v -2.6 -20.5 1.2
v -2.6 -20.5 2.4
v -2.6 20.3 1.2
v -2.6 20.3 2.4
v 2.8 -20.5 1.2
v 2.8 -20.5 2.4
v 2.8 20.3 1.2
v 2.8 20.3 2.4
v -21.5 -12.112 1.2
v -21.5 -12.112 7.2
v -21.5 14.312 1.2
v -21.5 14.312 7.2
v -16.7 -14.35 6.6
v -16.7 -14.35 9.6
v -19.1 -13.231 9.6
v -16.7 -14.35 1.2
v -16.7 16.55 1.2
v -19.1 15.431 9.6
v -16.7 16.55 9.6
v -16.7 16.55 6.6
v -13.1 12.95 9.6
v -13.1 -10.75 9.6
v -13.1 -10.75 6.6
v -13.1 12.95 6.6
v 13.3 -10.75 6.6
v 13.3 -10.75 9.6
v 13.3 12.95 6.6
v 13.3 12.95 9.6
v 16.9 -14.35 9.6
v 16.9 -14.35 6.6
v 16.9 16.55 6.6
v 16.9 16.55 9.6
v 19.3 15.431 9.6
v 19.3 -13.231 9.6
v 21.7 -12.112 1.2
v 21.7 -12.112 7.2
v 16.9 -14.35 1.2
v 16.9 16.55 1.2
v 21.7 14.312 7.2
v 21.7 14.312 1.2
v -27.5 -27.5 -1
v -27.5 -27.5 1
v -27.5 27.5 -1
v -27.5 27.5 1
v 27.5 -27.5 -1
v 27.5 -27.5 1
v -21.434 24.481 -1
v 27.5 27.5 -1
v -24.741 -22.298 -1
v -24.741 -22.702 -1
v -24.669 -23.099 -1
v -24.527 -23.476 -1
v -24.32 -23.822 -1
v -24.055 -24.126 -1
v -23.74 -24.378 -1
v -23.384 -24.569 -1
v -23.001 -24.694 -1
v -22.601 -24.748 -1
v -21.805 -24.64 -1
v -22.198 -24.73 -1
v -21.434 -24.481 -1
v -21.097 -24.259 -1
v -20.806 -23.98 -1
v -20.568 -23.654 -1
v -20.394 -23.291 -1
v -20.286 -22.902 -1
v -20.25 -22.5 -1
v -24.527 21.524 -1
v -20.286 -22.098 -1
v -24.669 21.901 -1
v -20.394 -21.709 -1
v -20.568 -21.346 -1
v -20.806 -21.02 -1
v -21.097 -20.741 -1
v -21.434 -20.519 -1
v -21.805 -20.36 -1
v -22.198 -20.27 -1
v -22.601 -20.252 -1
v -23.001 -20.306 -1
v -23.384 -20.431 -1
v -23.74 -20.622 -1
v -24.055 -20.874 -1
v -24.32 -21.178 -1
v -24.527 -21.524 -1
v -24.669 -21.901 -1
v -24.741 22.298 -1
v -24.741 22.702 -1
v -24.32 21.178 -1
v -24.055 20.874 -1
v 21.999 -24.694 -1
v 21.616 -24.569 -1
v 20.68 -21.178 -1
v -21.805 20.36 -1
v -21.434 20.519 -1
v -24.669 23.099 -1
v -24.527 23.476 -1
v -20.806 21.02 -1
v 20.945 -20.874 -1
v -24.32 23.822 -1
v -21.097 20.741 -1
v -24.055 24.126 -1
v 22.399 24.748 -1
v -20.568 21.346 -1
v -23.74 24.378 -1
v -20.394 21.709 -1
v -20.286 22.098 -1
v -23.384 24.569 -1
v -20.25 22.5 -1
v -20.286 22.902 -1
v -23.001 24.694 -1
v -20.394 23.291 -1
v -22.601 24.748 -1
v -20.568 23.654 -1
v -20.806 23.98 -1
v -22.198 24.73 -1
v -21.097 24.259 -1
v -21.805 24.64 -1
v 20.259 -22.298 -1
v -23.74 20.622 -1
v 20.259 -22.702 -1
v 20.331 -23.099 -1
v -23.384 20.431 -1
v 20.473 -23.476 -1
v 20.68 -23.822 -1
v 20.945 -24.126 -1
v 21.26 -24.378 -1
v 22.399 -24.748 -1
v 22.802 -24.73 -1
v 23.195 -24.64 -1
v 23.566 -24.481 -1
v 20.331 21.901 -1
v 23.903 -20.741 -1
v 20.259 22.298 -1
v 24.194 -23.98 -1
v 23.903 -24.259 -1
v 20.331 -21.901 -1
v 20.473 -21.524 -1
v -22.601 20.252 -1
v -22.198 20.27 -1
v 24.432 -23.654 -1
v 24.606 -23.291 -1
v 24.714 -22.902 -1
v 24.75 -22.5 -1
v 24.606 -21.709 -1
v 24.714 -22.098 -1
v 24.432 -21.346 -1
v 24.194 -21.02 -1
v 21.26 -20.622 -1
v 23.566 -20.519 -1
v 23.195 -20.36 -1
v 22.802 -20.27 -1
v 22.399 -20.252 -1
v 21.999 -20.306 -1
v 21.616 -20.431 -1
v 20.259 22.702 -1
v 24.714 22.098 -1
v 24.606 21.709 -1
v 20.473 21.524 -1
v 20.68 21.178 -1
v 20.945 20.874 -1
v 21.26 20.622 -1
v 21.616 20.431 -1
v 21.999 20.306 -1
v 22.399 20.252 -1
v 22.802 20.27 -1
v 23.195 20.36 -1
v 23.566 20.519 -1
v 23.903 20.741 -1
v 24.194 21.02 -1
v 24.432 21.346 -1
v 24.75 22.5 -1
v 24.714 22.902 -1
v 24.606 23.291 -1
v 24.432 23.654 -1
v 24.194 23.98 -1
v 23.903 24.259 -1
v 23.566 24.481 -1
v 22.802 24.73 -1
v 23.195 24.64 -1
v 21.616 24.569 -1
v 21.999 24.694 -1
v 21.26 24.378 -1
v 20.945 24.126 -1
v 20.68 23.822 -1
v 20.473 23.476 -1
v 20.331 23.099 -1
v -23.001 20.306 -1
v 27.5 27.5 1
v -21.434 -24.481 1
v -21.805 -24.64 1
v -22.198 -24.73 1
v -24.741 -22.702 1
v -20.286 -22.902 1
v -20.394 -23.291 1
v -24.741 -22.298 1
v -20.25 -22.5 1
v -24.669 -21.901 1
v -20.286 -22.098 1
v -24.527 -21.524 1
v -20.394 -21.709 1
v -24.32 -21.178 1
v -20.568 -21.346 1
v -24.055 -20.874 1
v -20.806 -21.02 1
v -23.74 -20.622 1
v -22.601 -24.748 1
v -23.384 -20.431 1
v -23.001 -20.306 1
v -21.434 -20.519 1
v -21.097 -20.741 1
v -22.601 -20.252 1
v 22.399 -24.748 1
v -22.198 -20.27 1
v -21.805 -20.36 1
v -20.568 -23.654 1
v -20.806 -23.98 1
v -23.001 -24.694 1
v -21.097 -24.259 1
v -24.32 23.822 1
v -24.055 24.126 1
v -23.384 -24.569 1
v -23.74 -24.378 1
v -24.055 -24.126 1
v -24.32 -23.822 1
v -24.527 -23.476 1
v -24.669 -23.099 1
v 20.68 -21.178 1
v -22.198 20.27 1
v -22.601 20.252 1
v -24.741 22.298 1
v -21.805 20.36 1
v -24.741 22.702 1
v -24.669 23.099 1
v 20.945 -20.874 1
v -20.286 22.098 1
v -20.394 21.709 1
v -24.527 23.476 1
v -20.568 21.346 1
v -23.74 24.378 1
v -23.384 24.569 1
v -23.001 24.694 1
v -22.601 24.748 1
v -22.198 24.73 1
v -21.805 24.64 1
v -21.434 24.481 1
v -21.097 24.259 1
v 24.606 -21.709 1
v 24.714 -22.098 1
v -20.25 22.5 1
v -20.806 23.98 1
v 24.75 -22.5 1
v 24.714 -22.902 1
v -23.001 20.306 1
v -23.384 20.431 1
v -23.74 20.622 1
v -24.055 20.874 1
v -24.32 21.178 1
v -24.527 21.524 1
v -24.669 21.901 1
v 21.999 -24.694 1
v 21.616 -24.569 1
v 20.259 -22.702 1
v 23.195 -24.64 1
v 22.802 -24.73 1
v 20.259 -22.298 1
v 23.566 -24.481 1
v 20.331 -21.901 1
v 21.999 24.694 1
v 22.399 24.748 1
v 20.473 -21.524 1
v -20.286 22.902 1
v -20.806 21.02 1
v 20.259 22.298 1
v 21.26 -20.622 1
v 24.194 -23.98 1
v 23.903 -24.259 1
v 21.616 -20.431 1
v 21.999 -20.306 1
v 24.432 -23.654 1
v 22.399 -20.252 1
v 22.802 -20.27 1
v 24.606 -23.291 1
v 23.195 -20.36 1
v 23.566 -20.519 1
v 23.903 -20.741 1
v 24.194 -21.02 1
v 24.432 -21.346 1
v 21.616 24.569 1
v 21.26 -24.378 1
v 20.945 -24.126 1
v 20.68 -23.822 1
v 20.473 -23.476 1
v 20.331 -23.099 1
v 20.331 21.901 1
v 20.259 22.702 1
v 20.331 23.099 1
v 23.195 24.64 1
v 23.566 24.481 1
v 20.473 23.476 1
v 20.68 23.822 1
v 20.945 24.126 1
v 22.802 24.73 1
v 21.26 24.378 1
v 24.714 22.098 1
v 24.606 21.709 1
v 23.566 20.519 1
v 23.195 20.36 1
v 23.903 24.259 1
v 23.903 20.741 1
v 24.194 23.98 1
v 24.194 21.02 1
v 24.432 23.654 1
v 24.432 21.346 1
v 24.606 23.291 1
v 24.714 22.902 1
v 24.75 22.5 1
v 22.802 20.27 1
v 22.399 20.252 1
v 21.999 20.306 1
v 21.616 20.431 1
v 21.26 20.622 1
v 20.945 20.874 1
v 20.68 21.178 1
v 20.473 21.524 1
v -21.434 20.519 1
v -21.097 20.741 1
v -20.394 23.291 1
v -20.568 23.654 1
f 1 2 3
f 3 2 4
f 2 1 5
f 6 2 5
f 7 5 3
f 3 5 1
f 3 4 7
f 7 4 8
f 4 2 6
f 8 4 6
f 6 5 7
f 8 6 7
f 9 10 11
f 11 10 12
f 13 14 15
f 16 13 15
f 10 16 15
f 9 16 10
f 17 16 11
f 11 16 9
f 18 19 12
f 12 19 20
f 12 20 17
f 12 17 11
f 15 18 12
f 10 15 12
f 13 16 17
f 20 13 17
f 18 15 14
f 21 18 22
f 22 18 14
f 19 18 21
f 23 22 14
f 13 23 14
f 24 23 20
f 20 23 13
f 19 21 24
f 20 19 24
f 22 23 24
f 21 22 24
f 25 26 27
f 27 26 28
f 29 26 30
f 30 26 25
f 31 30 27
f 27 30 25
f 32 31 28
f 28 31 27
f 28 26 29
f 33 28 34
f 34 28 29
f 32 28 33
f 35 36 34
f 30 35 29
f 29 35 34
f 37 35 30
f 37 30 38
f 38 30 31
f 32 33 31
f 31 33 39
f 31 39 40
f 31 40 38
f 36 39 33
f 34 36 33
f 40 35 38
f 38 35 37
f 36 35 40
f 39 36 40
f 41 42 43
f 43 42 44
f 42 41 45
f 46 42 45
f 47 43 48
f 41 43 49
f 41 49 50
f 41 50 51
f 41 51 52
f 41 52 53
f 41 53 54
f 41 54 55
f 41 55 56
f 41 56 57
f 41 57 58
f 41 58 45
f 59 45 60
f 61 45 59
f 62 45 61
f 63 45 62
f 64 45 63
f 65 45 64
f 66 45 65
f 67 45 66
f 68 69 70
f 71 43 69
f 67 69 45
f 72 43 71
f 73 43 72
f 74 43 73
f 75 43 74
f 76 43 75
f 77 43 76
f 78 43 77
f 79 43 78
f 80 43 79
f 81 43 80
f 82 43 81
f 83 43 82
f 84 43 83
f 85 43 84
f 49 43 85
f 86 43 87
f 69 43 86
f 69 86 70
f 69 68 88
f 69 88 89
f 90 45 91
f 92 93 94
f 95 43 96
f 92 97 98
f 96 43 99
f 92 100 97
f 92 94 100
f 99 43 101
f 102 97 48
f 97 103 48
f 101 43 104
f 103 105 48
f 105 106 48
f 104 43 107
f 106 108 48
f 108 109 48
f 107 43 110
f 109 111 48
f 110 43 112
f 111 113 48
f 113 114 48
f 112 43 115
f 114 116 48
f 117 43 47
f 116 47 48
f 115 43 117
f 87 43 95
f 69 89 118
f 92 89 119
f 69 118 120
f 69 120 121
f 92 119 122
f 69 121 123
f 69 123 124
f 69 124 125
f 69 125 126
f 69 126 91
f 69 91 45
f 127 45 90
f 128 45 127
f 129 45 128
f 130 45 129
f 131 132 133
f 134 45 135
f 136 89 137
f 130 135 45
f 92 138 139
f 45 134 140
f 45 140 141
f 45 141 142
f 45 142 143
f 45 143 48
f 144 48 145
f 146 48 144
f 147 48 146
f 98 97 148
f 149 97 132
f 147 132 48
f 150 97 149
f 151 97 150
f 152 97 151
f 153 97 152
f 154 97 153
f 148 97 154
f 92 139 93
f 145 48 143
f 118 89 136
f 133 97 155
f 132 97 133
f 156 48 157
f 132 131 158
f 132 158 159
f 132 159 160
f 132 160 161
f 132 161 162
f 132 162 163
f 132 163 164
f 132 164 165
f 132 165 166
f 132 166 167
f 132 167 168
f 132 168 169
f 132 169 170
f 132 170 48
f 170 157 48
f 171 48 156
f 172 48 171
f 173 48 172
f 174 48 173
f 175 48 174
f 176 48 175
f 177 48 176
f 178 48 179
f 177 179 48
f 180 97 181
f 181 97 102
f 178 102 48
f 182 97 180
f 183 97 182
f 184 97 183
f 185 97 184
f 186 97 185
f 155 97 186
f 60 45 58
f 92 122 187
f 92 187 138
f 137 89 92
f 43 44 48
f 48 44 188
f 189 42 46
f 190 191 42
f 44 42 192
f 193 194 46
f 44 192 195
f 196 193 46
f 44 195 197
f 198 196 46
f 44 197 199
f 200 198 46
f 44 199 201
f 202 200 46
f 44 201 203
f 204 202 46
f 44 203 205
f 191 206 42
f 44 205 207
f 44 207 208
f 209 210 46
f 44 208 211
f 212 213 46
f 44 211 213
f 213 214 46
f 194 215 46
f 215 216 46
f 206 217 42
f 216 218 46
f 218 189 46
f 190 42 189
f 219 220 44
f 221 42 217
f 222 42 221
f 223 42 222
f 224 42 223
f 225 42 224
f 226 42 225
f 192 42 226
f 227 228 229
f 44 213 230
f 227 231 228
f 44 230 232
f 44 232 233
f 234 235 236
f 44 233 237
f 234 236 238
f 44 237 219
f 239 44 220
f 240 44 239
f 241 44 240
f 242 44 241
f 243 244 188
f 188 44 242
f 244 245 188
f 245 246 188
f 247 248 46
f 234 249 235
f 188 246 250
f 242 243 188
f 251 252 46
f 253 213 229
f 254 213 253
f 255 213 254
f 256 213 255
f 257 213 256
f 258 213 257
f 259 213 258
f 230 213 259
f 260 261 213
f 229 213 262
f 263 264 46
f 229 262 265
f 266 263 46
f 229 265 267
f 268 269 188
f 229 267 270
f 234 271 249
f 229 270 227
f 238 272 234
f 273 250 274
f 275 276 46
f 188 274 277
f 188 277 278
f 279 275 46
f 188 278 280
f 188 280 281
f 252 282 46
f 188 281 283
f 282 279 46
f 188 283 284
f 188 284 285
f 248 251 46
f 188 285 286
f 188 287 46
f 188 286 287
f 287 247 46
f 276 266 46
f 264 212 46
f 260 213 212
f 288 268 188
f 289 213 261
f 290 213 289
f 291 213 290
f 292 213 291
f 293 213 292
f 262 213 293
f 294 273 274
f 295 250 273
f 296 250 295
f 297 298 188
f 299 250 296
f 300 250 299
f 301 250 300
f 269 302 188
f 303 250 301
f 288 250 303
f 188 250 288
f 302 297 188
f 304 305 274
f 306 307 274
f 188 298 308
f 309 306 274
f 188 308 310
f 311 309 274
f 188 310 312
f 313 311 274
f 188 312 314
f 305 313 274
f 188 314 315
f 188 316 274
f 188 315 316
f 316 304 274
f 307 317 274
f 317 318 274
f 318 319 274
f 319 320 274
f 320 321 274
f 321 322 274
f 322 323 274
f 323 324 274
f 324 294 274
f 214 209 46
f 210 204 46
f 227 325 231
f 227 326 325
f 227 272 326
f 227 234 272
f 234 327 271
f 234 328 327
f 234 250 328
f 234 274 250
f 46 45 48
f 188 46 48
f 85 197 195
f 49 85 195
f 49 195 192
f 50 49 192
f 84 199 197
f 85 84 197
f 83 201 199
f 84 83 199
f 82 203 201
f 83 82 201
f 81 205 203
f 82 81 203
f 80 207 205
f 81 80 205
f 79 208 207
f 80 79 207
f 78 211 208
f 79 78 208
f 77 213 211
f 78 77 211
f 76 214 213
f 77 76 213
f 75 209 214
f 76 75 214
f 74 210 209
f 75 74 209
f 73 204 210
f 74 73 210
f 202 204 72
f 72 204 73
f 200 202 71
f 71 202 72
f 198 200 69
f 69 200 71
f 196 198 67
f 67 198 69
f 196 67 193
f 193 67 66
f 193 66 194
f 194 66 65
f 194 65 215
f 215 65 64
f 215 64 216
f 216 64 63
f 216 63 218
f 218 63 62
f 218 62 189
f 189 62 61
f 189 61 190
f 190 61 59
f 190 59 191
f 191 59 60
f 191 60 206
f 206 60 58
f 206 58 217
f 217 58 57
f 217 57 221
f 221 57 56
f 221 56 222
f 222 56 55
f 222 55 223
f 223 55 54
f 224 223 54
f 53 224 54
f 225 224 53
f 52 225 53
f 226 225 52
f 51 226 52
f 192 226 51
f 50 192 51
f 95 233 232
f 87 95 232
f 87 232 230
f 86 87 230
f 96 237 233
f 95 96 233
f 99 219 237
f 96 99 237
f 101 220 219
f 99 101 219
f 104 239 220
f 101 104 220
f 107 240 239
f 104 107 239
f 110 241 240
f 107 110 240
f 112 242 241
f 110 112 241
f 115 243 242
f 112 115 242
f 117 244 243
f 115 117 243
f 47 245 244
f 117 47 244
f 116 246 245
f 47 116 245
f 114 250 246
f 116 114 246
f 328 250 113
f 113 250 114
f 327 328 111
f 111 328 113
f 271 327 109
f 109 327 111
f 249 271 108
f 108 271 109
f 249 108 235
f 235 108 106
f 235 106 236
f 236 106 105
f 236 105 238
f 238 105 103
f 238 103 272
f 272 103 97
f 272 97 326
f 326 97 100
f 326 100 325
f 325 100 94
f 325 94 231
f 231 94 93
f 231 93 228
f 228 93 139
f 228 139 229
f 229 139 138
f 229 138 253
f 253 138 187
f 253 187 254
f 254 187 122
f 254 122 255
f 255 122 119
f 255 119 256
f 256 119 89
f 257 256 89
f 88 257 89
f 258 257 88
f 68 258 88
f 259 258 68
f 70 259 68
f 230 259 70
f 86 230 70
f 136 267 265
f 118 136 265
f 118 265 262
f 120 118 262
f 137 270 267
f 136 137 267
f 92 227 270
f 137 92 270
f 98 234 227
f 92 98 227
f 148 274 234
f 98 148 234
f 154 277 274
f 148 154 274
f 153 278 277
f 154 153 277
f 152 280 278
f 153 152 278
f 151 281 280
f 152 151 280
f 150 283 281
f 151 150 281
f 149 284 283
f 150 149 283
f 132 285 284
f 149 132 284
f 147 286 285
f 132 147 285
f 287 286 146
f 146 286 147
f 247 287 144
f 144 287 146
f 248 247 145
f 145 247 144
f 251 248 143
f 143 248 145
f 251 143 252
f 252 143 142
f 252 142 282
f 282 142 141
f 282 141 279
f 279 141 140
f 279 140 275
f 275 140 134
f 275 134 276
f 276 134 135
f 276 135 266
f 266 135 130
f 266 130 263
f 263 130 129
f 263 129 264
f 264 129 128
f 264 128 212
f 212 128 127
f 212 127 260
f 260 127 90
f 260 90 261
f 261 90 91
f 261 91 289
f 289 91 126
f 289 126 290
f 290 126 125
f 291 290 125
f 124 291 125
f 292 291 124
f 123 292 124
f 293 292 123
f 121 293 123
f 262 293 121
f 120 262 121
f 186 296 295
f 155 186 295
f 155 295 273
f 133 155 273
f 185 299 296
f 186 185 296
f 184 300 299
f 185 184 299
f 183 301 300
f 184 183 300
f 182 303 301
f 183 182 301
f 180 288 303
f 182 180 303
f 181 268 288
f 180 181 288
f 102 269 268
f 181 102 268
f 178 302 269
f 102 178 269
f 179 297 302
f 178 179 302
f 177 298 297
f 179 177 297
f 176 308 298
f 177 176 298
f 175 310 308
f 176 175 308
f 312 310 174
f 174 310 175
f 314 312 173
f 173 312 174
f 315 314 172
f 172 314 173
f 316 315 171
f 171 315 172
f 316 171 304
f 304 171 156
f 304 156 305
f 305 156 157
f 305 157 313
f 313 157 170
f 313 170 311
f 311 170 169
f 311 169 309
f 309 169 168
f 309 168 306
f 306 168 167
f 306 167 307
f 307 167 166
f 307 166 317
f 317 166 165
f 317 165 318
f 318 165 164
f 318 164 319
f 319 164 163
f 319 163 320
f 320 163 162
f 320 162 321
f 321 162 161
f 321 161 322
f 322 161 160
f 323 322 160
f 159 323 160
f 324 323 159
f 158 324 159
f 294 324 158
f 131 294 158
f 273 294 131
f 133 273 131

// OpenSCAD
// By Lucas Gelfond
// Credit for Mount Module goes to YouMagine user fns720.
// https://www.youmagine.com/designs/camera-diver-s-handle#!design-documents
// Licensed Under CC-BY-SA



//Variables
    mountXSize = 36;
    mountYSize = 46;
    mountZSize = 6;
    plateSize = 55;
    plateThick = 2;
    holePattern = 45;
    screwHole =4.5;

module cameraMount() {

	middleRailXSize = 4.5;
	middleRailYSize = 34;
	middleRailZSize = 3.5;
	
	edgeXSize = 4;
	edgeYSize = 25.75;
	edgeZSize = 4.5;

	edgeTopXSize = 7;
	edgeTopYSize = edgeYSize;
	edgeTopZSize = 2.5;

	edgeInnerAngle = 45;
	edgeOuterAngle = 25;
	edgeSideAngle = 45;
	edgeSideChamferSize = 2;

	union() {

		cube(size=[mountXSize,mountYSize,mountZSize]); // base

		translate([(mountXSize-middleRailXSize)/2, (mountYSize-mountXSize)/2, middleRailZSize]) cube(size=[middleRailXSize, middleRailYSize, middleRailZSize]); // middle rail

		difference() { // left socket
			union() {
				translate([0, (mountYSize - edgeYSize) / 2, mountZSize]) cube(size=[edgeXSize, edgeYSize, edgeZSize]); // left edge
			
				difference() {
				  translate([0, (mountYSize - edgeYSize) / 2, mountZSize + edgeZSize]) cube(size=[edgeTopXSize, edgeTopYSize, edgeTopZSize]); // left top
					translate([edgeXSize, (mountYSize - edgeYSize) / 2, mountZSize - 1]) rotate([0, 0, -edgeInnerAngle]) cube(edgeZSize + edgeTopZSize + 2); // lower right mountYSize degree trim
					translate([edgeXSize, (mountYSize - edgeYSize) / 2 + edgeYSize, mountZSize - 1]) rotate([0, 0, -edgeInnerAngle]) cube(edgeZSize + edgeTopZSize + 2); // upper right mountYSize degree trim
				}	
			}
			translate([edgeXSize, (mountYSize - edgeYSize) / 2, mountZSize - 1]) rotate([0,0,180 - edgeOuterAngle]) cube(edgeZSize + edgeTopZSize + 2); // lower left 30 degree trim
			translate([edgeXSize, (mountYSize - edgeYSize) / 2 + edgeYSize, mountZSize - 1]) rotate([0, 0, 90 + edgeOuterAngle]) cube(edgeZSize + edgeTopZSize + 2); // upper left 30 degree trim
			translate([0 + edgeSideChamferSize,  (mountYSize - edgeYSize) / 2, mountZSize + edgeZSize + edgeTopZSize]) rotate([0, -90-edgeSideAngle, 0]) cube(size=[edgeXSize, edgeYSize, edgeZSize]); // left edge side chamfer trim
		}

		difference() { // right socket
			union() {
				translate([mountXSize - edgeXSize, (mountYSize - edgeYSize) / 2, mountZSize]) cube(size=[edgeXSize, edgeYSize, edgeZSize]); // right edge
			  
			  difference() {
			  	translate([mountXSize - edgeTopXSize, (mountYSize - edgeTopYSize) / 2, mountZSize + edgeZSize]) cube(size=[edgeTopXSize, edgeTopYSize, edgeTopZSize]); // right top
					translate([mountXSize - edgeXSize , (mountYSize - edgeYSize) / 2, mountZSize - 1]) rotate([0, 0, 90 + edgeInnerAngle]) cube(edgeZSize + edgeTopZSize + 2); // lower right mountYSize degree trim
					translate([mountXSize - edgeXSize , (mountYSize - edgeYSize) / 2 + edgeYSize, mountZSize - 1]) rotate([0,0,90 + edgeInnerAngle]) cube(edgeZSize + edgeTopZSize + 2); // upper right mountYSize degree trim
				}
			}
			translate([mountXSize - edgeXSize , (mountYSize - edgeYSize) / 2, mountZSize - 1]) rotate([0,0, -90 +edgeOuterAngle]) cube(edgeZSize + edgeTopZSize + 2); // upper right 30 degree trim
			translate([mountXSize - edgeXSize, (mountYSize - edgeYSize) / 2 + edgeYSize, mountZSize - 1]) rotate([0,0,-edgeOuterAngle]) cube(edgeZSize + edgeTopZSize + 2); // lower right 30 degree trim
			translate([mountXSize - edgeSideChamferSize,  (mountYSize - edgeYSize) / 2, mountZSize + edgeZSize + edgeTopZSize]) rotate([0, edgeSideAngle, 0]) cube(size=[edgeXSize, edgeYSize, edgeZSize]); // left edge side chamfer trim
		}
	}

}
module cameraMount2() {
    difference() {
        cameraMount();
        translate([-1,-1, -1]) {
            cube([mountXSize+2, mountYSize+2, mountZSize+1]);
        }
    }
}
module mainPlate() {
    translate([mountXSize/-2-3.5, mountYSize/-2-3.5, -mountZSize]) {
        difference(){
            scale([1.2, 1.2, 1.2]) {
                cameraMount2();
            }
            translate([-1,-1,-1]) {
                cube([mountXSize*1.15+2, mountYSize*1.15+2, 0]);
           }
        }
    }
    cube([plateSize, plateSize, plateThick], center=true);
}

module screw() {
    cylinder(r=screwHole/2, h=plateThick*4, center=true, $fn=35);
}
 
module finalPlate() {
    difference() {
        mainPlate();
        translate([holePattern/2,holePattern/2,0]) {
            screw();
        }
        translate([holePattern/-2,holePattern/-2,0]) {
            screw();
        }
        translate([holePattern/-2,holePattern/2,0]) {
            screw();
        }
        translate([holePattern/2,holePattern/-2,0]) {
            screw();
        }
    }
}


finalPlate();
